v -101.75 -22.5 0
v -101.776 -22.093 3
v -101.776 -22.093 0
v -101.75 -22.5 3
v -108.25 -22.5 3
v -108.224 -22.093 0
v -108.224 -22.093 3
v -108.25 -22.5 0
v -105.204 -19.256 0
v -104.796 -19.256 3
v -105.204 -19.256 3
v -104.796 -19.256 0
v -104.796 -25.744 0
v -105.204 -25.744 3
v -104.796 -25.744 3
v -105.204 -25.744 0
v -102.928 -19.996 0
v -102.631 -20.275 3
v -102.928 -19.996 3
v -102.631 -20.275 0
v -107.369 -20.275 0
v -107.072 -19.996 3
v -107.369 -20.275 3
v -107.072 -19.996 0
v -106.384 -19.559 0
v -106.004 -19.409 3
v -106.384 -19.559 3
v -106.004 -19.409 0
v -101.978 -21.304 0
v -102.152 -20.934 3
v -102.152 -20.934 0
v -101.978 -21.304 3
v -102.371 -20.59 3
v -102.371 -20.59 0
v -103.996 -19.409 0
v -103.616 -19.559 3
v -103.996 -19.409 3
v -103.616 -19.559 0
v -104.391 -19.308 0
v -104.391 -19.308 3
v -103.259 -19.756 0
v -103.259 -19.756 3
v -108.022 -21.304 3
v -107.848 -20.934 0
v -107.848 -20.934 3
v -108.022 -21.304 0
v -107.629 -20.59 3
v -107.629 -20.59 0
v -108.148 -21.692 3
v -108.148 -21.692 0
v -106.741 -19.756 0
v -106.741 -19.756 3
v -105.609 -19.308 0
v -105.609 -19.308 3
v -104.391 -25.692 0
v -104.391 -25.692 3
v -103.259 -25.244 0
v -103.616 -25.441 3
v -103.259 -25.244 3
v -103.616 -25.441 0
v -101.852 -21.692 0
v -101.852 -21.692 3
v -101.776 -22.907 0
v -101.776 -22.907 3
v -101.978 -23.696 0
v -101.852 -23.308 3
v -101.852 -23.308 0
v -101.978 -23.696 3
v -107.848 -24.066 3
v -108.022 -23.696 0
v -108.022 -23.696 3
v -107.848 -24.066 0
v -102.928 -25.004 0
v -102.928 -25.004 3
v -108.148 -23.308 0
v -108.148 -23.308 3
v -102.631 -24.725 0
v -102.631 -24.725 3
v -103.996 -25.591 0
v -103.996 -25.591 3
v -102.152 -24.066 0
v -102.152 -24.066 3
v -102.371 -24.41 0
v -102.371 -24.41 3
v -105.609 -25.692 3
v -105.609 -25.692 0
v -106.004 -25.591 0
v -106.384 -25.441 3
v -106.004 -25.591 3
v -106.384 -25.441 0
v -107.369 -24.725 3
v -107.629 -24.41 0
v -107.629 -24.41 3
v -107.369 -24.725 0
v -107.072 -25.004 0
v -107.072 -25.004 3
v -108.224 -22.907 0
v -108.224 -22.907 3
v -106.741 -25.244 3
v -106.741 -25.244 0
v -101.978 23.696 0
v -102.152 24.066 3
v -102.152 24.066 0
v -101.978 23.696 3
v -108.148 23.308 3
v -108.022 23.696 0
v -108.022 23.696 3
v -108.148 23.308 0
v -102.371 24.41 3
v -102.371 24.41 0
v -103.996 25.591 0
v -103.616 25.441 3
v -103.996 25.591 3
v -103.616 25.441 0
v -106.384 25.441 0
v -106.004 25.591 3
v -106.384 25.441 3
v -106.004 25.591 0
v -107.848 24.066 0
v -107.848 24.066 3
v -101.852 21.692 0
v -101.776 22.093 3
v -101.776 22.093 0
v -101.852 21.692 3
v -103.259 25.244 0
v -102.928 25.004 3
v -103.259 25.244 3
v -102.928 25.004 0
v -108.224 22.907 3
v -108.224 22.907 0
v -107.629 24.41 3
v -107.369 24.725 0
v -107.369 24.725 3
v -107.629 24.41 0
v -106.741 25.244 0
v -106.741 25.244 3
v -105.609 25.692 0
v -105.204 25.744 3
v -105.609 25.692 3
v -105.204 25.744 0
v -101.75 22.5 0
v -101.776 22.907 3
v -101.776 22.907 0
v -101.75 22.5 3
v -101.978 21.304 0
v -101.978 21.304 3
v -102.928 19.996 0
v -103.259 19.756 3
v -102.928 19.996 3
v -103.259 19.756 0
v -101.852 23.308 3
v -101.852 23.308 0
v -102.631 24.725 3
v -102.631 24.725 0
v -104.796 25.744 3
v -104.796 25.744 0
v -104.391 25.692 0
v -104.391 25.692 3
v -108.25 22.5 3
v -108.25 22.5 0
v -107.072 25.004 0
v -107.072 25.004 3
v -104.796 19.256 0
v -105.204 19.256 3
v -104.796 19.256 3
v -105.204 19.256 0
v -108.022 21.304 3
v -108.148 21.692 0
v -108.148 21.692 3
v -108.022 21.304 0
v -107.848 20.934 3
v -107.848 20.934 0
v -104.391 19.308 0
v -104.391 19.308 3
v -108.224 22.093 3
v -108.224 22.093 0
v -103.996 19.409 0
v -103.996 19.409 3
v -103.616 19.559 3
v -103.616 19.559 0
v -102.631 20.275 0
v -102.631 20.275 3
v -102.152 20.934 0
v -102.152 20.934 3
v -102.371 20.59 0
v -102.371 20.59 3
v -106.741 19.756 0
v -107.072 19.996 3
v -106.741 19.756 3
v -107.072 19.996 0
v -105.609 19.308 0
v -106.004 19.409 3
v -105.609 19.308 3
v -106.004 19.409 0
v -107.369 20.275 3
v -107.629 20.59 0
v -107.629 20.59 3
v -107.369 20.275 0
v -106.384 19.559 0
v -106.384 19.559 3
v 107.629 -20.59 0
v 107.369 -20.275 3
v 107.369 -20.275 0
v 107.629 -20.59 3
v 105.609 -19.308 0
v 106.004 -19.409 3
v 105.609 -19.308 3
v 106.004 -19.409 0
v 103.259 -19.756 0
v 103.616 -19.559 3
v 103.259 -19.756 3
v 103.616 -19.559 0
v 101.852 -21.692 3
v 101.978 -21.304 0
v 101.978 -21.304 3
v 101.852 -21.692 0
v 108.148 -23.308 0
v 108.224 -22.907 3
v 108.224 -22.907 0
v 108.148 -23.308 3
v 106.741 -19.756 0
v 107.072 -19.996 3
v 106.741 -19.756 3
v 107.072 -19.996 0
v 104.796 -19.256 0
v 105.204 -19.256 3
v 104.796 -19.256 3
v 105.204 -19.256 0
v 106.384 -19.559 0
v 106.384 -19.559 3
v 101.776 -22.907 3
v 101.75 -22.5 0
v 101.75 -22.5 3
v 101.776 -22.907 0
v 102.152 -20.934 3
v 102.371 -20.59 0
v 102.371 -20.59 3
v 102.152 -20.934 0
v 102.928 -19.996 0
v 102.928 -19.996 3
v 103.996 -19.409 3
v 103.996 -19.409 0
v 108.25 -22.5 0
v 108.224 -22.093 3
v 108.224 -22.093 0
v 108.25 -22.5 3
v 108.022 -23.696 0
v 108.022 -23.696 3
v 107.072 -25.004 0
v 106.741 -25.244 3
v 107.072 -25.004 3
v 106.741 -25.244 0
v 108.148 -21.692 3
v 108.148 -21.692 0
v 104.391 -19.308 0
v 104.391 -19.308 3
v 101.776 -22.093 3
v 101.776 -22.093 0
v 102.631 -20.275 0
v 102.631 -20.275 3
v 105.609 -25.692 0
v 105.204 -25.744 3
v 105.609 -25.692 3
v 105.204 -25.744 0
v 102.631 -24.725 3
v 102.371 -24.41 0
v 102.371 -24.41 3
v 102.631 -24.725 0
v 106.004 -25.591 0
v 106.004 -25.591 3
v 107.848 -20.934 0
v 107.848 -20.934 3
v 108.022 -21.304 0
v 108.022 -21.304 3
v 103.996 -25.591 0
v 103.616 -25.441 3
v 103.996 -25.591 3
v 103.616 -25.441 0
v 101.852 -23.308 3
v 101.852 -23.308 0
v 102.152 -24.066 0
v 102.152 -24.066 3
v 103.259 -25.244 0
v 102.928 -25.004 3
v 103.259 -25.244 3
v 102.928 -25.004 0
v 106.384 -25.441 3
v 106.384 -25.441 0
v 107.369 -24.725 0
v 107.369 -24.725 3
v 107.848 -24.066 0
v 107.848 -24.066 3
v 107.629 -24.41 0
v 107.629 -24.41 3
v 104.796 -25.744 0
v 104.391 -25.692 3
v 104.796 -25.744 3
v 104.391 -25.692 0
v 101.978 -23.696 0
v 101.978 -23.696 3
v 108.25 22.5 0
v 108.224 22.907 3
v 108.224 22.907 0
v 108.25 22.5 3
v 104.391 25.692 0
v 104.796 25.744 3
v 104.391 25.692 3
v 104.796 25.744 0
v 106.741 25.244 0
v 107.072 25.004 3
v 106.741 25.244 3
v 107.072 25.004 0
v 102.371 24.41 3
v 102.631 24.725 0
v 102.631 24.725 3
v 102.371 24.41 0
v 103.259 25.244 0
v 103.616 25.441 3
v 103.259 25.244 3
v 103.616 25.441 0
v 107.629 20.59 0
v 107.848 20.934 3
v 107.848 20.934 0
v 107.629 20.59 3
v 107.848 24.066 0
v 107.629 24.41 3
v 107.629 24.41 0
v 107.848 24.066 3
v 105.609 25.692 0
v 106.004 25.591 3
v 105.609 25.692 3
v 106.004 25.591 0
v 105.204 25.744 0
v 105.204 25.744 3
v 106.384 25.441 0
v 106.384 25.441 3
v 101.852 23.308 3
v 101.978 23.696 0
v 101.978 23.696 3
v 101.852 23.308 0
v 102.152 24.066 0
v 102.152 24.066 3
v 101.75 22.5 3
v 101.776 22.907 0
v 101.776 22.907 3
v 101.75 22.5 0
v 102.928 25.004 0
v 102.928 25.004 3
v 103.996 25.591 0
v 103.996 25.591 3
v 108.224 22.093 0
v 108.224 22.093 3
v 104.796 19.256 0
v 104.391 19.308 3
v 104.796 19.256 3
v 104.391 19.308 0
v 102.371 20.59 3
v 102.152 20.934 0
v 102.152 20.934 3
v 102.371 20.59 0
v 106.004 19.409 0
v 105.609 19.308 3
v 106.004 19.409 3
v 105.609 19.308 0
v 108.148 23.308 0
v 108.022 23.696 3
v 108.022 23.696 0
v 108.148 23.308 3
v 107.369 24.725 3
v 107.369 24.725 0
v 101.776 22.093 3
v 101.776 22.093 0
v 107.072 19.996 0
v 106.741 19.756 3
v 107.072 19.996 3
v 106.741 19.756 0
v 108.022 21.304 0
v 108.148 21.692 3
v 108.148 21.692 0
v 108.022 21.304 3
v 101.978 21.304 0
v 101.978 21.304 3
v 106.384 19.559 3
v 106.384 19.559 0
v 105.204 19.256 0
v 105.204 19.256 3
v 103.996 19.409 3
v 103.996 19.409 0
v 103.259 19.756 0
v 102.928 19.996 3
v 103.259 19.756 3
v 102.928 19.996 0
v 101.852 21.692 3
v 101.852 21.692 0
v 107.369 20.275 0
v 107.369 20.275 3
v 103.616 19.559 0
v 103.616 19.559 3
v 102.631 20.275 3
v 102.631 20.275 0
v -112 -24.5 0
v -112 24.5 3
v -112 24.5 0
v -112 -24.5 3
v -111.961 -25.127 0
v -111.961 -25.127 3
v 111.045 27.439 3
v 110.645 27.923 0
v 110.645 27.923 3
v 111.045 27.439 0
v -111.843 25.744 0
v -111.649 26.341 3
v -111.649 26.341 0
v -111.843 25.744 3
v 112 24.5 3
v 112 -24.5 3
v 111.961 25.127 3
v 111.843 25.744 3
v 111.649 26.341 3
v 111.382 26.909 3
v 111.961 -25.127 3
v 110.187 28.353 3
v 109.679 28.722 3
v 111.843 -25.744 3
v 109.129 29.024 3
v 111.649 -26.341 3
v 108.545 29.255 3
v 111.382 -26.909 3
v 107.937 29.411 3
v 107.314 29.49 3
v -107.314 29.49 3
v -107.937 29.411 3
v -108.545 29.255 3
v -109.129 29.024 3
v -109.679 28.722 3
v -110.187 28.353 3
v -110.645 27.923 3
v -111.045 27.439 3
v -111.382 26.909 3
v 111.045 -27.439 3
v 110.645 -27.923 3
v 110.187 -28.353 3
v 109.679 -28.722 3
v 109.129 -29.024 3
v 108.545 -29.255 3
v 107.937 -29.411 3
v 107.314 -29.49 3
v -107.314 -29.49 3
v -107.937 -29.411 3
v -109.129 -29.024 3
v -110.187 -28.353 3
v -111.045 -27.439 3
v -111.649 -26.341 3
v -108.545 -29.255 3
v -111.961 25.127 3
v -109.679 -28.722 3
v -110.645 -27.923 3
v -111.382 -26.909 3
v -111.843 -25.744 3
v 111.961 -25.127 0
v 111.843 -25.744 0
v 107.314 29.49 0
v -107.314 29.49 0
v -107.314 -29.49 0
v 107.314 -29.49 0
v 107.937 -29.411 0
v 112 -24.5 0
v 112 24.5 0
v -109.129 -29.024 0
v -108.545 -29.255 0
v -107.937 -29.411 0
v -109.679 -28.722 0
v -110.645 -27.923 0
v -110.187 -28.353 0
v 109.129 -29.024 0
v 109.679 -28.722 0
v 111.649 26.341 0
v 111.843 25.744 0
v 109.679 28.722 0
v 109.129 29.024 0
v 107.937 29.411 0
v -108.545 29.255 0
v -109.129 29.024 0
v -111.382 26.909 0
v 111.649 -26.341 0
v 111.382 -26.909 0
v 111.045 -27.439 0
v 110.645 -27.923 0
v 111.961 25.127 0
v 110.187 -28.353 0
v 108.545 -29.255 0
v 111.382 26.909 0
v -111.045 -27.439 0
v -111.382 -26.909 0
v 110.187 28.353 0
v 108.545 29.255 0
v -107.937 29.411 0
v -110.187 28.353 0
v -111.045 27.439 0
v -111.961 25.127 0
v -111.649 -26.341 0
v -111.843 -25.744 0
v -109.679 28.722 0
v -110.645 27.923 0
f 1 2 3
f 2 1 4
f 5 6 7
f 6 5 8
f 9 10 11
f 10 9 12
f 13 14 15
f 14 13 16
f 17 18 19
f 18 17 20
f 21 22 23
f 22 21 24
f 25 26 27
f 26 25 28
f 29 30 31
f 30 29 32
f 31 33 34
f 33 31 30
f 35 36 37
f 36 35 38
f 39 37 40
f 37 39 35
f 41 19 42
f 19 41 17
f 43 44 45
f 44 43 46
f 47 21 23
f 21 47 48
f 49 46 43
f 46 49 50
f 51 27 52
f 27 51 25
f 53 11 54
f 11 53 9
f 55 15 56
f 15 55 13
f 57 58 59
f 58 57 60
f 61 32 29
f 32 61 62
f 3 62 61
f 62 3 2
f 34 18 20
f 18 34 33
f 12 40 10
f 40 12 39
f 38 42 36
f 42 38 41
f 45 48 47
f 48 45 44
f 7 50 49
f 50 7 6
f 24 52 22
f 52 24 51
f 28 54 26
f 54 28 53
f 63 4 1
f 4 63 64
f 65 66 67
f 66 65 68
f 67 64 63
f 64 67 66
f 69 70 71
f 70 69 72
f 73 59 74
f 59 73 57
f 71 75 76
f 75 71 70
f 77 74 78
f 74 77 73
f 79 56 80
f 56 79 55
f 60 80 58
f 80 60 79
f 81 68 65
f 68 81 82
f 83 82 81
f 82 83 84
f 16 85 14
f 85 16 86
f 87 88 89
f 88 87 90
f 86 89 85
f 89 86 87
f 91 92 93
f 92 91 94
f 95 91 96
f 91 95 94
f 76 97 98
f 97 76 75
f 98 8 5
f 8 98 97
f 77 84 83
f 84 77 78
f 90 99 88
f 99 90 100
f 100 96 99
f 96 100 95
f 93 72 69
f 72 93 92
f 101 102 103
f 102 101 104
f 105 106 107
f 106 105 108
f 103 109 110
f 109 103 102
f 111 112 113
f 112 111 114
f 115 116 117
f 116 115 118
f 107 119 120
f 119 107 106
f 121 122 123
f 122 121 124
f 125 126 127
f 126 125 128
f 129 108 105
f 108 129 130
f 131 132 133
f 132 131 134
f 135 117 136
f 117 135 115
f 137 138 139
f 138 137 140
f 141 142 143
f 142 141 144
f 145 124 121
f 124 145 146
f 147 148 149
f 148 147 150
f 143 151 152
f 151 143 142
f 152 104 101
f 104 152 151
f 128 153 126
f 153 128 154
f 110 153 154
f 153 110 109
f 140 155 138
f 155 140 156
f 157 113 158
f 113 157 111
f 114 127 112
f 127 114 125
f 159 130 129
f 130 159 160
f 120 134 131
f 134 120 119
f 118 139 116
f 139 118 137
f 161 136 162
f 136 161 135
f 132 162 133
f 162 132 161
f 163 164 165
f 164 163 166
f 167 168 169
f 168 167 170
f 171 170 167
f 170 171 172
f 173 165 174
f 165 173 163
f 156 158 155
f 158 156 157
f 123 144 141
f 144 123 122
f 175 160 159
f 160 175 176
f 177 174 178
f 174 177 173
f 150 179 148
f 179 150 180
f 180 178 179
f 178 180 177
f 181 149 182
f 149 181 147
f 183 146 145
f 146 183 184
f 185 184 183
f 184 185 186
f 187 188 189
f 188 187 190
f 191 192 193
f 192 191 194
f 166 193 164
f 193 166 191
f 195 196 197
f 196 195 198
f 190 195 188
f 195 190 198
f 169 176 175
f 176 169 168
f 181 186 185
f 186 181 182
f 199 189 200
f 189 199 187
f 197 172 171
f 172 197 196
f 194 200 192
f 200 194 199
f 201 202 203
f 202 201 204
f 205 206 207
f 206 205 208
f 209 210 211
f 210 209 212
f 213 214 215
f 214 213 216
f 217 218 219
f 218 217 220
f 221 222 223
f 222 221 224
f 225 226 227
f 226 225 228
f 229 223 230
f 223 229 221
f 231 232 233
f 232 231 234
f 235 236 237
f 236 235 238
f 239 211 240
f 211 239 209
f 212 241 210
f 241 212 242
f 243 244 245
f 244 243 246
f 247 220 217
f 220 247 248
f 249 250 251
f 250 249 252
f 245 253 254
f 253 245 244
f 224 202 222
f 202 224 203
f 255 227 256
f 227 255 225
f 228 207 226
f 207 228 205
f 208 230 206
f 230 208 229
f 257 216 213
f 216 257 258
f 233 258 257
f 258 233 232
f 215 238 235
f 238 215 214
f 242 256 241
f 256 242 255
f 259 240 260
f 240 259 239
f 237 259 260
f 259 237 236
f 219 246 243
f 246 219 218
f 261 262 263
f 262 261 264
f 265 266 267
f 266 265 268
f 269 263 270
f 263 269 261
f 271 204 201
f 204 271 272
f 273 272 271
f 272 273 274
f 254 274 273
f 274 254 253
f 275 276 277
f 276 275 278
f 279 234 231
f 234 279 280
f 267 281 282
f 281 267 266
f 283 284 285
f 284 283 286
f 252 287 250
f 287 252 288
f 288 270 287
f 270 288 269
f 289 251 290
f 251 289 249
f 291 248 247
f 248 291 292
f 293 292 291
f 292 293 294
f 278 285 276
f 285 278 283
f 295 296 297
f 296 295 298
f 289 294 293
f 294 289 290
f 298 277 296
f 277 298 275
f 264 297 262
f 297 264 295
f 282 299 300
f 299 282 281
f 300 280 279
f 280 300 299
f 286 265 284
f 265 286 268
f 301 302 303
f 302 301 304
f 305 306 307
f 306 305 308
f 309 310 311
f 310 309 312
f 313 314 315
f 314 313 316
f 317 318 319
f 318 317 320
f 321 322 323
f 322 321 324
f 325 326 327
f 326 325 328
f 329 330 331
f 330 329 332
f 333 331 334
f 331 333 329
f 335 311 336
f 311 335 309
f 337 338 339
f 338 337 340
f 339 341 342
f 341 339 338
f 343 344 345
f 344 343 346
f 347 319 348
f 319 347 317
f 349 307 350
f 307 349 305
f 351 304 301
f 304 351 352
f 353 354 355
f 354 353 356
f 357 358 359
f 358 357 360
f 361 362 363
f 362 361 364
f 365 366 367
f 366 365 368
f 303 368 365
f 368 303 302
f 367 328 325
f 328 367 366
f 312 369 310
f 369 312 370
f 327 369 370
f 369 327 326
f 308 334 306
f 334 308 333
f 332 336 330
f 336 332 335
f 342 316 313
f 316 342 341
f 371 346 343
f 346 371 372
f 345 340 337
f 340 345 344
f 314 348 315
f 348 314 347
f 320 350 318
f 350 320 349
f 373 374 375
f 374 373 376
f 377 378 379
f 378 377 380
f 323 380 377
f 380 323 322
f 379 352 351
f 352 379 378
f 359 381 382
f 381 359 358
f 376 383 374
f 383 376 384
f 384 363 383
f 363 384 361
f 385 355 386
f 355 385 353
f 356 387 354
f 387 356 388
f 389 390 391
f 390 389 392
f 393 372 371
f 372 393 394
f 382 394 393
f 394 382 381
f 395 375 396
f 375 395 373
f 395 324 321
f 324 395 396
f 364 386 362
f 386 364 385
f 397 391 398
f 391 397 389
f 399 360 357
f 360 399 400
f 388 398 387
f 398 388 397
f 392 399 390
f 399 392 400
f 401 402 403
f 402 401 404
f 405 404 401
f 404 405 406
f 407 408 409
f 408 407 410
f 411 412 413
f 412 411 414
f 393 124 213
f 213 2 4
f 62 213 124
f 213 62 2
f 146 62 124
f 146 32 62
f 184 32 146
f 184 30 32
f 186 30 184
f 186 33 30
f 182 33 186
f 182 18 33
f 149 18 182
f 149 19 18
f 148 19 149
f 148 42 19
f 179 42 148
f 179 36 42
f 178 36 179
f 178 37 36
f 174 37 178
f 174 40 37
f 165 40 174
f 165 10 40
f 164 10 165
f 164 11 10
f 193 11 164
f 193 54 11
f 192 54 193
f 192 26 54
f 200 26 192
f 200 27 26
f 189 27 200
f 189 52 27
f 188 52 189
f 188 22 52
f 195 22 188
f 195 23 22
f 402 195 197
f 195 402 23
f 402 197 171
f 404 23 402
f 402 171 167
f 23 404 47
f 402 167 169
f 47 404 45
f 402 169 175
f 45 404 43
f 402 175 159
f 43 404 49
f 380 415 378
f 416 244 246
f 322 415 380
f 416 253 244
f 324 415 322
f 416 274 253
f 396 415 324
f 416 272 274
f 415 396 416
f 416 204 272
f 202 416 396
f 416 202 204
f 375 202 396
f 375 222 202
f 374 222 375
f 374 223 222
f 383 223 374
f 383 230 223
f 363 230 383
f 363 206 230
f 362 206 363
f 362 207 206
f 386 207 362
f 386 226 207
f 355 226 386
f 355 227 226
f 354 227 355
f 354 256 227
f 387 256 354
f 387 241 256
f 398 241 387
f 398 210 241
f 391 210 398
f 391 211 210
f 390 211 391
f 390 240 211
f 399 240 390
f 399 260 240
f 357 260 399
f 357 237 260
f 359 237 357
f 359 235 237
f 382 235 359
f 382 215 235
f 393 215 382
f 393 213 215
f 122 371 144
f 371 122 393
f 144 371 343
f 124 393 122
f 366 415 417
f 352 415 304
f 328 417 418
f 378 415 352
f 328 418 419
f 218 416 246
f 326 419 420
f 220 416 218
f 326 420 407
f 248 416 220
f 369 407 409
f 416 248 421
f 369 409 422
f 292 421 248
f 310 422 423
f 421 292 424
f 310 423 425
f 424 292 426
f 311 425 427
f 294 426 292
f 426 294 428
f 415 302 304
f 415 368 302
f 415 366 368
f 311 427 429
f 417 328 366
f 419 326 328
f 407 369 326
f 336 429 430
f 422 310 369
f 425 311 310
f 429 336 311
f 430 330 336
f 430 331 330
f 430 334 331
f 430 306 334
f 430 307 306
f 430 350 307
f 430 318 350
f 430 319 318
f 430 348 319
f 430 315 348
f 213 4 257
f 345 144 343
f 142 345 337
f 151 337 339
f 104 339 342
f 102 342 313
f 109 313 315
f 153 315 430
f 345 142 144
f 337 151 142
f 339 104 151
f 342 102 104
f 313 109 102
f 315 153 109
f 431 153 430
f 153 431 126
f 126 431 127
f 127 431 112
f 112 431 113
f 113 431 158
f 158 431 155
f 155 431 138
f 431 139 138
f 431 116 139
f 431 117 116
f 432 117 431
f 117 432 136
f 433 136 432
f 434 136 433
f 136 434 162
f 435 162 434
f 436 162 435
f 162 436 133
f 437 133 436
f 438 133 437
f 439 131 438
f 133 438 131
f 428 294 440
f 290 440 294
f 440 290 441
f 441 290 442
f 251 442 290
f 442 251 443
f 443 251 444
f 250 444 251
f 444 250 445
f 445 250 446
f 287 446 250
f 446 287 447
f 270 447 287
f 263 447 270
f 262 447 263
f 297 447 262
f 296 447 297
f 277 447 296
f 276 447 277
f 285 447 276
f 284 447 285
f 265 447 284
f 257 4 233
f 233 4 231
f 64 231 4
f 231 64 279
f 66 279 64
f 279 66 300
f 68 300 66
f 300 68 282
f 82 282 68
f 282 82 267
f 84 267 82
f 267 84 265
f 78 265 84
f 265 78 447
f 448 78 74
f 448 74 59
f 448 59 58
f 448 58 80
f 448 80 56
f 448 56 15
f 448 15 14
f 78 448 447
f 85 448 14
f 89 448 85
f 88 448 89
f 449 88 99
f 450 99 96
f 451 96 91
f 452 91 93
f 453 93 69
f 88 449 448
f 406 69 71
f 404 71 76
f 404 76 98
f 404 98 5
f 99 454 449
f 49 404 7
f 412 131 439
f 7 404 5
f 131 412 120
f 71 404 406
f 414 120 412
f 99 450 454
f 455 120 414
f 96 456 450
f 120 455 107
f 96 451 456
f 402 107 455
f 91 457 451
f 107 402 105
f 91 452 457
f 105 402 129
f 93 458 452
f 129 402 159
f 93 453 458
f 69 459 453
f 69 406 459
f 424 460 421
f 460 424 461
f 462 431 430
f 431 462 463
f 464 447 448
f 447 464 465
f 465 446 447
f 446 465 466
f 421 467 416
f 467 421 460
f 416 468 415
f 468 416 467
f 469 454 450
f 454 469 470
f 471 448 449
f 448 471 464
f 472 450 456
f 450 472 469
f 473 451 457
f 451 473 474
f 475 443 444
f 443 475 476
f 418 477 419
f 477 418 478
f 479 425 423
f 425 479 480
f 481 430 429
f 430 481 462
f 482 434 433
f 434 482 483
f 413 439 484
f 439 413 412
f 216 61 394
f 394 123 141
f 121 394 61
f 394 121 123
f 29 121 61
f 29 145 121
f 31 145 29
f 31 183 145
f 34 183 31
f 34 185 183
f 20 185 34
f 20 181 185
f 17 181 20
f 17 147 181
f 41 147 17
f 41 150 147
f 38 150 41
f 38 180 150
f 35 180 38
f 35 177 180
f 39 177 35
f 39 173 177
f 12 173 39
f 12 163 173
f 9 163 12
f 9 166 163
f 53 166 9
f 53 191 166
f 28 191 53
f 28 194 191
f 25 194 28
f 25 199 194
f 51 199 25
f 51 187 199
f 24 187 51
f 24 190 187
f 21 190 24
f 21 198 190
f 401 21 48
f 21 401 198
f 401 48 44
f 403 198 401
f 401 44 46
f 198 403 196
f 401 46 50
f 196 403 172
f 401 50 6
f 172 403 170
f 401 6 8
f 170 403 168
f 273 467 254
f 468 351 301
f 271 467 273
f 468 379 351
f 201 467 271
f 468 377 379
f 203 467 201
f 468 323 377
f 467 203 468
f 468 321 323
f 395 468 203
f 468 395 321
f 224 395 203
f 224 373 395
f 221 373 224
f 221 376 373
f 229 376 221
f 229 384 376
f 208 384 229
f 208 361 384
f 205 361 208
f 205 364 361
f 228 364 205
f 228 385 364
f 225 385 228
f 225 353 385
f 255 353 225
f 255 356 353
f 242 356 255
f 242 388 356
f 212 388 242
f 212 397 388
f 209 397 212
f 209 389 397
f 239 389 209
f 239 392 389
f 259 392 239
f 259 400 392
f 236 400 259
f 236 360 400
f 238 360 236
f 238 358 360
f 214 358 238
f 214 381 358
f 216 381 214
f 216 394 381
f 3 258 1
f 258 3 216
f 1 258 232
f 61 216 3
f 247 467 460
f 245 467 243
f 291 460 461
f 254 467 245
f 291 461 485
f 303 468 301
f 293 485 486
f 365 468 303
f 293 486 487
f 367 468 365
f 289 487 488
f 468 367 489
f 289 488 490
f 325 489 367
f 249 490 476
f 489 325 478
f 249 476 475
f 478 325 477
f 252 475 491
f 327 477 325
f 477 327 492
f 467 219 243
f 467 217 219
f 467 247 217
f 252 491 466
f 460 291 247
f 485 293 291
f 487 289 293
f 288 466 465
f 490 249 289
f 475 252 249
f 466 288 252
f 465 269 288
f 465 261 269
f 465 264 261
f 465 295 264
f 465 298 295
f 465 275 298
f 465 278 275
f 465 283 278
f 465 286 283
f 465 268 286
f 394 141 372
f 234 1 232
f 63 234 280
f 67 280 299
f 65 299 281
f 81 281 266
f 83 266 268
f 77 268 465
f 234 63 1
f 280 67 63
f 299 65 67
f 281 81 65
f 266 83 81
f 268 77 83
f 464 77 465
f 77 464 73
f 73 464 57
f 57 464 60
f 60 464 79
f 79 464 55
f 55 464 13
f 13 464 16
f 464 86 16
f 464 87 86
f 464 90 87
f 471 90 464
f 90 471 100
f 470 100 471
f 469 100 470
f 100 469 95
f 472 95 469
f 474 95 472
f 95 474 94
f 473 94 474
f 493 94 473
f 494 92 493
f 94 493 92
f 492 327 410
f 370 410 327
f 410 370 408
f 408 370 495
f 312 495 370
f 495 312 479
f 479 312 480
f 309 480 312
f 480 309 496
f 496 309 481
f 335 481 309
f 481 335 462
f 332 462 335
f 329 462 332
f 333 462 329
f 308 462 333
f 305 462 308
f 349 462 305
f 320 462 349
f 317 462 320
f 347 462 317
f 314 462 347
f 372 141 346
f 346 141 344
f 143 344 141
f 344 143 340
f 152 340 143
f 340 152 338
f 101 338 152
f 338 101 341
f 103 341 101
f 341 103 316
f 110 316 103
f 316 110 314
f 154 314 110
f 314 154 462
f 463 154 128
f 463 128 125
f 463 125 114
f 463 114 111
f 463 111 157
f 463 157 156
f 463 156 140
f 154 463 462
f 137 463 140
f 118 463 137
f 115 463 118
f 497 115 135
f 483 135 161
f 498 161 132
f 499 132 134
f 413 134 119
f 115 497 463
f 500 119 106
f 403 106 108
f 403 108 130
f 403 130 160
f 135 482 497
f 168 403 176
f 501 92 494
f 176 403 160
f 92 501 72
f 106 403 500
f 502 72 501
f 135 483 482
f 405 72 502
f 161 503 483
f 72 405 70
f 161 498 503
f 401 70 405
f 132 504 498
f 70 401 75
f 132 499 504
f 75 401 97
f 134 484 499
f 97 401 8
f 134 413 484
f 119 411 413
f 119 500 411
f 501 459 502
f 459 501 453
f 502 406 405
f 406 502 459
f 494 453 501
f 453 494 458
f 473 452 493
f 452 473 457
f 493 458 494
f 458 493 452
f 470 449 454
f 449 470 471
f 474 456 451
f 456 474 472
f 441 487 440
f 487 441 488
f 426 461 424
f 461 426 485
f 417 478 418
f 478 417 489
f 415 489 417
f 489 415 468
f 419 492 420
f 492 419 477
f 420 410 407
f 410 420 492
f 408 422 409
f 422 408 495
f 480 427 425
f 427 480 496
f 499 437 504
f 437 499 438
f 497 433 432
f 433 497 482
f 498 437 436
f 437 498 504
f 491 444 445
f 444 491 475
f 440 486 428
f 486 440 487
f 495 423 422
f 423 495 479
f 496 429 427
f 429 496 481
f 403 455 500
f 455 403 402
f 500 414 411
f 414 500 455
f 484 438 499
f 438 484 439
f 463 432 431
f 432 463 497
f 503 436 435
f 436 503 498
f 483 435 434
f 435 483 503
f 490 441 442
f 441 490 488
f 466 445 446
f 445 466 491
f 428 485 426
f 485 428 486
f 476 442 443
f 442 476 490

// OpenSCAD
$fn = 50;


difference() {
	union() {
		hull() {
			translate(v = [-107.0000000000, 24.5000000000, 0]) {
				cylinder(h = 3, r = 5);
			}
			translate(v = [107.0000000000, 24.5000000000, 0]) {
				cylinder(h = 3, r = 5);
			}
			translate(v = [-107.0000000000, -24.5000000000, 0]) {
				cylinder(h = 3, r = 5);
			}
			translate(v = [107.0000000000, -24.5000000000, 0]) {
				cylinder(h = 3, r = 5);
			}
		}
	}
	union() {
		translate(v = [-105.0000000000, -22.5000000000, -100.0000000000]) {
			cylinder(h = 200, r = 3.2500000000);
		}
		translate(v = [-105.0000000000, 22.5000000000, -100.0000000000]) {
			cylinder(h = 200, r = 3.2500000000);
		}
		translate(v = [105.0000000000, -22.5000000000, -100.0000000000]) {
			cylinder(h = 200, r = 3.2500000000);
		}
		translate(v = [105.0000000000, 22.5000000000, -100.0000000000]) {
			cylinder(h = 200, r = 3.2500000000);
		}
	}
}
